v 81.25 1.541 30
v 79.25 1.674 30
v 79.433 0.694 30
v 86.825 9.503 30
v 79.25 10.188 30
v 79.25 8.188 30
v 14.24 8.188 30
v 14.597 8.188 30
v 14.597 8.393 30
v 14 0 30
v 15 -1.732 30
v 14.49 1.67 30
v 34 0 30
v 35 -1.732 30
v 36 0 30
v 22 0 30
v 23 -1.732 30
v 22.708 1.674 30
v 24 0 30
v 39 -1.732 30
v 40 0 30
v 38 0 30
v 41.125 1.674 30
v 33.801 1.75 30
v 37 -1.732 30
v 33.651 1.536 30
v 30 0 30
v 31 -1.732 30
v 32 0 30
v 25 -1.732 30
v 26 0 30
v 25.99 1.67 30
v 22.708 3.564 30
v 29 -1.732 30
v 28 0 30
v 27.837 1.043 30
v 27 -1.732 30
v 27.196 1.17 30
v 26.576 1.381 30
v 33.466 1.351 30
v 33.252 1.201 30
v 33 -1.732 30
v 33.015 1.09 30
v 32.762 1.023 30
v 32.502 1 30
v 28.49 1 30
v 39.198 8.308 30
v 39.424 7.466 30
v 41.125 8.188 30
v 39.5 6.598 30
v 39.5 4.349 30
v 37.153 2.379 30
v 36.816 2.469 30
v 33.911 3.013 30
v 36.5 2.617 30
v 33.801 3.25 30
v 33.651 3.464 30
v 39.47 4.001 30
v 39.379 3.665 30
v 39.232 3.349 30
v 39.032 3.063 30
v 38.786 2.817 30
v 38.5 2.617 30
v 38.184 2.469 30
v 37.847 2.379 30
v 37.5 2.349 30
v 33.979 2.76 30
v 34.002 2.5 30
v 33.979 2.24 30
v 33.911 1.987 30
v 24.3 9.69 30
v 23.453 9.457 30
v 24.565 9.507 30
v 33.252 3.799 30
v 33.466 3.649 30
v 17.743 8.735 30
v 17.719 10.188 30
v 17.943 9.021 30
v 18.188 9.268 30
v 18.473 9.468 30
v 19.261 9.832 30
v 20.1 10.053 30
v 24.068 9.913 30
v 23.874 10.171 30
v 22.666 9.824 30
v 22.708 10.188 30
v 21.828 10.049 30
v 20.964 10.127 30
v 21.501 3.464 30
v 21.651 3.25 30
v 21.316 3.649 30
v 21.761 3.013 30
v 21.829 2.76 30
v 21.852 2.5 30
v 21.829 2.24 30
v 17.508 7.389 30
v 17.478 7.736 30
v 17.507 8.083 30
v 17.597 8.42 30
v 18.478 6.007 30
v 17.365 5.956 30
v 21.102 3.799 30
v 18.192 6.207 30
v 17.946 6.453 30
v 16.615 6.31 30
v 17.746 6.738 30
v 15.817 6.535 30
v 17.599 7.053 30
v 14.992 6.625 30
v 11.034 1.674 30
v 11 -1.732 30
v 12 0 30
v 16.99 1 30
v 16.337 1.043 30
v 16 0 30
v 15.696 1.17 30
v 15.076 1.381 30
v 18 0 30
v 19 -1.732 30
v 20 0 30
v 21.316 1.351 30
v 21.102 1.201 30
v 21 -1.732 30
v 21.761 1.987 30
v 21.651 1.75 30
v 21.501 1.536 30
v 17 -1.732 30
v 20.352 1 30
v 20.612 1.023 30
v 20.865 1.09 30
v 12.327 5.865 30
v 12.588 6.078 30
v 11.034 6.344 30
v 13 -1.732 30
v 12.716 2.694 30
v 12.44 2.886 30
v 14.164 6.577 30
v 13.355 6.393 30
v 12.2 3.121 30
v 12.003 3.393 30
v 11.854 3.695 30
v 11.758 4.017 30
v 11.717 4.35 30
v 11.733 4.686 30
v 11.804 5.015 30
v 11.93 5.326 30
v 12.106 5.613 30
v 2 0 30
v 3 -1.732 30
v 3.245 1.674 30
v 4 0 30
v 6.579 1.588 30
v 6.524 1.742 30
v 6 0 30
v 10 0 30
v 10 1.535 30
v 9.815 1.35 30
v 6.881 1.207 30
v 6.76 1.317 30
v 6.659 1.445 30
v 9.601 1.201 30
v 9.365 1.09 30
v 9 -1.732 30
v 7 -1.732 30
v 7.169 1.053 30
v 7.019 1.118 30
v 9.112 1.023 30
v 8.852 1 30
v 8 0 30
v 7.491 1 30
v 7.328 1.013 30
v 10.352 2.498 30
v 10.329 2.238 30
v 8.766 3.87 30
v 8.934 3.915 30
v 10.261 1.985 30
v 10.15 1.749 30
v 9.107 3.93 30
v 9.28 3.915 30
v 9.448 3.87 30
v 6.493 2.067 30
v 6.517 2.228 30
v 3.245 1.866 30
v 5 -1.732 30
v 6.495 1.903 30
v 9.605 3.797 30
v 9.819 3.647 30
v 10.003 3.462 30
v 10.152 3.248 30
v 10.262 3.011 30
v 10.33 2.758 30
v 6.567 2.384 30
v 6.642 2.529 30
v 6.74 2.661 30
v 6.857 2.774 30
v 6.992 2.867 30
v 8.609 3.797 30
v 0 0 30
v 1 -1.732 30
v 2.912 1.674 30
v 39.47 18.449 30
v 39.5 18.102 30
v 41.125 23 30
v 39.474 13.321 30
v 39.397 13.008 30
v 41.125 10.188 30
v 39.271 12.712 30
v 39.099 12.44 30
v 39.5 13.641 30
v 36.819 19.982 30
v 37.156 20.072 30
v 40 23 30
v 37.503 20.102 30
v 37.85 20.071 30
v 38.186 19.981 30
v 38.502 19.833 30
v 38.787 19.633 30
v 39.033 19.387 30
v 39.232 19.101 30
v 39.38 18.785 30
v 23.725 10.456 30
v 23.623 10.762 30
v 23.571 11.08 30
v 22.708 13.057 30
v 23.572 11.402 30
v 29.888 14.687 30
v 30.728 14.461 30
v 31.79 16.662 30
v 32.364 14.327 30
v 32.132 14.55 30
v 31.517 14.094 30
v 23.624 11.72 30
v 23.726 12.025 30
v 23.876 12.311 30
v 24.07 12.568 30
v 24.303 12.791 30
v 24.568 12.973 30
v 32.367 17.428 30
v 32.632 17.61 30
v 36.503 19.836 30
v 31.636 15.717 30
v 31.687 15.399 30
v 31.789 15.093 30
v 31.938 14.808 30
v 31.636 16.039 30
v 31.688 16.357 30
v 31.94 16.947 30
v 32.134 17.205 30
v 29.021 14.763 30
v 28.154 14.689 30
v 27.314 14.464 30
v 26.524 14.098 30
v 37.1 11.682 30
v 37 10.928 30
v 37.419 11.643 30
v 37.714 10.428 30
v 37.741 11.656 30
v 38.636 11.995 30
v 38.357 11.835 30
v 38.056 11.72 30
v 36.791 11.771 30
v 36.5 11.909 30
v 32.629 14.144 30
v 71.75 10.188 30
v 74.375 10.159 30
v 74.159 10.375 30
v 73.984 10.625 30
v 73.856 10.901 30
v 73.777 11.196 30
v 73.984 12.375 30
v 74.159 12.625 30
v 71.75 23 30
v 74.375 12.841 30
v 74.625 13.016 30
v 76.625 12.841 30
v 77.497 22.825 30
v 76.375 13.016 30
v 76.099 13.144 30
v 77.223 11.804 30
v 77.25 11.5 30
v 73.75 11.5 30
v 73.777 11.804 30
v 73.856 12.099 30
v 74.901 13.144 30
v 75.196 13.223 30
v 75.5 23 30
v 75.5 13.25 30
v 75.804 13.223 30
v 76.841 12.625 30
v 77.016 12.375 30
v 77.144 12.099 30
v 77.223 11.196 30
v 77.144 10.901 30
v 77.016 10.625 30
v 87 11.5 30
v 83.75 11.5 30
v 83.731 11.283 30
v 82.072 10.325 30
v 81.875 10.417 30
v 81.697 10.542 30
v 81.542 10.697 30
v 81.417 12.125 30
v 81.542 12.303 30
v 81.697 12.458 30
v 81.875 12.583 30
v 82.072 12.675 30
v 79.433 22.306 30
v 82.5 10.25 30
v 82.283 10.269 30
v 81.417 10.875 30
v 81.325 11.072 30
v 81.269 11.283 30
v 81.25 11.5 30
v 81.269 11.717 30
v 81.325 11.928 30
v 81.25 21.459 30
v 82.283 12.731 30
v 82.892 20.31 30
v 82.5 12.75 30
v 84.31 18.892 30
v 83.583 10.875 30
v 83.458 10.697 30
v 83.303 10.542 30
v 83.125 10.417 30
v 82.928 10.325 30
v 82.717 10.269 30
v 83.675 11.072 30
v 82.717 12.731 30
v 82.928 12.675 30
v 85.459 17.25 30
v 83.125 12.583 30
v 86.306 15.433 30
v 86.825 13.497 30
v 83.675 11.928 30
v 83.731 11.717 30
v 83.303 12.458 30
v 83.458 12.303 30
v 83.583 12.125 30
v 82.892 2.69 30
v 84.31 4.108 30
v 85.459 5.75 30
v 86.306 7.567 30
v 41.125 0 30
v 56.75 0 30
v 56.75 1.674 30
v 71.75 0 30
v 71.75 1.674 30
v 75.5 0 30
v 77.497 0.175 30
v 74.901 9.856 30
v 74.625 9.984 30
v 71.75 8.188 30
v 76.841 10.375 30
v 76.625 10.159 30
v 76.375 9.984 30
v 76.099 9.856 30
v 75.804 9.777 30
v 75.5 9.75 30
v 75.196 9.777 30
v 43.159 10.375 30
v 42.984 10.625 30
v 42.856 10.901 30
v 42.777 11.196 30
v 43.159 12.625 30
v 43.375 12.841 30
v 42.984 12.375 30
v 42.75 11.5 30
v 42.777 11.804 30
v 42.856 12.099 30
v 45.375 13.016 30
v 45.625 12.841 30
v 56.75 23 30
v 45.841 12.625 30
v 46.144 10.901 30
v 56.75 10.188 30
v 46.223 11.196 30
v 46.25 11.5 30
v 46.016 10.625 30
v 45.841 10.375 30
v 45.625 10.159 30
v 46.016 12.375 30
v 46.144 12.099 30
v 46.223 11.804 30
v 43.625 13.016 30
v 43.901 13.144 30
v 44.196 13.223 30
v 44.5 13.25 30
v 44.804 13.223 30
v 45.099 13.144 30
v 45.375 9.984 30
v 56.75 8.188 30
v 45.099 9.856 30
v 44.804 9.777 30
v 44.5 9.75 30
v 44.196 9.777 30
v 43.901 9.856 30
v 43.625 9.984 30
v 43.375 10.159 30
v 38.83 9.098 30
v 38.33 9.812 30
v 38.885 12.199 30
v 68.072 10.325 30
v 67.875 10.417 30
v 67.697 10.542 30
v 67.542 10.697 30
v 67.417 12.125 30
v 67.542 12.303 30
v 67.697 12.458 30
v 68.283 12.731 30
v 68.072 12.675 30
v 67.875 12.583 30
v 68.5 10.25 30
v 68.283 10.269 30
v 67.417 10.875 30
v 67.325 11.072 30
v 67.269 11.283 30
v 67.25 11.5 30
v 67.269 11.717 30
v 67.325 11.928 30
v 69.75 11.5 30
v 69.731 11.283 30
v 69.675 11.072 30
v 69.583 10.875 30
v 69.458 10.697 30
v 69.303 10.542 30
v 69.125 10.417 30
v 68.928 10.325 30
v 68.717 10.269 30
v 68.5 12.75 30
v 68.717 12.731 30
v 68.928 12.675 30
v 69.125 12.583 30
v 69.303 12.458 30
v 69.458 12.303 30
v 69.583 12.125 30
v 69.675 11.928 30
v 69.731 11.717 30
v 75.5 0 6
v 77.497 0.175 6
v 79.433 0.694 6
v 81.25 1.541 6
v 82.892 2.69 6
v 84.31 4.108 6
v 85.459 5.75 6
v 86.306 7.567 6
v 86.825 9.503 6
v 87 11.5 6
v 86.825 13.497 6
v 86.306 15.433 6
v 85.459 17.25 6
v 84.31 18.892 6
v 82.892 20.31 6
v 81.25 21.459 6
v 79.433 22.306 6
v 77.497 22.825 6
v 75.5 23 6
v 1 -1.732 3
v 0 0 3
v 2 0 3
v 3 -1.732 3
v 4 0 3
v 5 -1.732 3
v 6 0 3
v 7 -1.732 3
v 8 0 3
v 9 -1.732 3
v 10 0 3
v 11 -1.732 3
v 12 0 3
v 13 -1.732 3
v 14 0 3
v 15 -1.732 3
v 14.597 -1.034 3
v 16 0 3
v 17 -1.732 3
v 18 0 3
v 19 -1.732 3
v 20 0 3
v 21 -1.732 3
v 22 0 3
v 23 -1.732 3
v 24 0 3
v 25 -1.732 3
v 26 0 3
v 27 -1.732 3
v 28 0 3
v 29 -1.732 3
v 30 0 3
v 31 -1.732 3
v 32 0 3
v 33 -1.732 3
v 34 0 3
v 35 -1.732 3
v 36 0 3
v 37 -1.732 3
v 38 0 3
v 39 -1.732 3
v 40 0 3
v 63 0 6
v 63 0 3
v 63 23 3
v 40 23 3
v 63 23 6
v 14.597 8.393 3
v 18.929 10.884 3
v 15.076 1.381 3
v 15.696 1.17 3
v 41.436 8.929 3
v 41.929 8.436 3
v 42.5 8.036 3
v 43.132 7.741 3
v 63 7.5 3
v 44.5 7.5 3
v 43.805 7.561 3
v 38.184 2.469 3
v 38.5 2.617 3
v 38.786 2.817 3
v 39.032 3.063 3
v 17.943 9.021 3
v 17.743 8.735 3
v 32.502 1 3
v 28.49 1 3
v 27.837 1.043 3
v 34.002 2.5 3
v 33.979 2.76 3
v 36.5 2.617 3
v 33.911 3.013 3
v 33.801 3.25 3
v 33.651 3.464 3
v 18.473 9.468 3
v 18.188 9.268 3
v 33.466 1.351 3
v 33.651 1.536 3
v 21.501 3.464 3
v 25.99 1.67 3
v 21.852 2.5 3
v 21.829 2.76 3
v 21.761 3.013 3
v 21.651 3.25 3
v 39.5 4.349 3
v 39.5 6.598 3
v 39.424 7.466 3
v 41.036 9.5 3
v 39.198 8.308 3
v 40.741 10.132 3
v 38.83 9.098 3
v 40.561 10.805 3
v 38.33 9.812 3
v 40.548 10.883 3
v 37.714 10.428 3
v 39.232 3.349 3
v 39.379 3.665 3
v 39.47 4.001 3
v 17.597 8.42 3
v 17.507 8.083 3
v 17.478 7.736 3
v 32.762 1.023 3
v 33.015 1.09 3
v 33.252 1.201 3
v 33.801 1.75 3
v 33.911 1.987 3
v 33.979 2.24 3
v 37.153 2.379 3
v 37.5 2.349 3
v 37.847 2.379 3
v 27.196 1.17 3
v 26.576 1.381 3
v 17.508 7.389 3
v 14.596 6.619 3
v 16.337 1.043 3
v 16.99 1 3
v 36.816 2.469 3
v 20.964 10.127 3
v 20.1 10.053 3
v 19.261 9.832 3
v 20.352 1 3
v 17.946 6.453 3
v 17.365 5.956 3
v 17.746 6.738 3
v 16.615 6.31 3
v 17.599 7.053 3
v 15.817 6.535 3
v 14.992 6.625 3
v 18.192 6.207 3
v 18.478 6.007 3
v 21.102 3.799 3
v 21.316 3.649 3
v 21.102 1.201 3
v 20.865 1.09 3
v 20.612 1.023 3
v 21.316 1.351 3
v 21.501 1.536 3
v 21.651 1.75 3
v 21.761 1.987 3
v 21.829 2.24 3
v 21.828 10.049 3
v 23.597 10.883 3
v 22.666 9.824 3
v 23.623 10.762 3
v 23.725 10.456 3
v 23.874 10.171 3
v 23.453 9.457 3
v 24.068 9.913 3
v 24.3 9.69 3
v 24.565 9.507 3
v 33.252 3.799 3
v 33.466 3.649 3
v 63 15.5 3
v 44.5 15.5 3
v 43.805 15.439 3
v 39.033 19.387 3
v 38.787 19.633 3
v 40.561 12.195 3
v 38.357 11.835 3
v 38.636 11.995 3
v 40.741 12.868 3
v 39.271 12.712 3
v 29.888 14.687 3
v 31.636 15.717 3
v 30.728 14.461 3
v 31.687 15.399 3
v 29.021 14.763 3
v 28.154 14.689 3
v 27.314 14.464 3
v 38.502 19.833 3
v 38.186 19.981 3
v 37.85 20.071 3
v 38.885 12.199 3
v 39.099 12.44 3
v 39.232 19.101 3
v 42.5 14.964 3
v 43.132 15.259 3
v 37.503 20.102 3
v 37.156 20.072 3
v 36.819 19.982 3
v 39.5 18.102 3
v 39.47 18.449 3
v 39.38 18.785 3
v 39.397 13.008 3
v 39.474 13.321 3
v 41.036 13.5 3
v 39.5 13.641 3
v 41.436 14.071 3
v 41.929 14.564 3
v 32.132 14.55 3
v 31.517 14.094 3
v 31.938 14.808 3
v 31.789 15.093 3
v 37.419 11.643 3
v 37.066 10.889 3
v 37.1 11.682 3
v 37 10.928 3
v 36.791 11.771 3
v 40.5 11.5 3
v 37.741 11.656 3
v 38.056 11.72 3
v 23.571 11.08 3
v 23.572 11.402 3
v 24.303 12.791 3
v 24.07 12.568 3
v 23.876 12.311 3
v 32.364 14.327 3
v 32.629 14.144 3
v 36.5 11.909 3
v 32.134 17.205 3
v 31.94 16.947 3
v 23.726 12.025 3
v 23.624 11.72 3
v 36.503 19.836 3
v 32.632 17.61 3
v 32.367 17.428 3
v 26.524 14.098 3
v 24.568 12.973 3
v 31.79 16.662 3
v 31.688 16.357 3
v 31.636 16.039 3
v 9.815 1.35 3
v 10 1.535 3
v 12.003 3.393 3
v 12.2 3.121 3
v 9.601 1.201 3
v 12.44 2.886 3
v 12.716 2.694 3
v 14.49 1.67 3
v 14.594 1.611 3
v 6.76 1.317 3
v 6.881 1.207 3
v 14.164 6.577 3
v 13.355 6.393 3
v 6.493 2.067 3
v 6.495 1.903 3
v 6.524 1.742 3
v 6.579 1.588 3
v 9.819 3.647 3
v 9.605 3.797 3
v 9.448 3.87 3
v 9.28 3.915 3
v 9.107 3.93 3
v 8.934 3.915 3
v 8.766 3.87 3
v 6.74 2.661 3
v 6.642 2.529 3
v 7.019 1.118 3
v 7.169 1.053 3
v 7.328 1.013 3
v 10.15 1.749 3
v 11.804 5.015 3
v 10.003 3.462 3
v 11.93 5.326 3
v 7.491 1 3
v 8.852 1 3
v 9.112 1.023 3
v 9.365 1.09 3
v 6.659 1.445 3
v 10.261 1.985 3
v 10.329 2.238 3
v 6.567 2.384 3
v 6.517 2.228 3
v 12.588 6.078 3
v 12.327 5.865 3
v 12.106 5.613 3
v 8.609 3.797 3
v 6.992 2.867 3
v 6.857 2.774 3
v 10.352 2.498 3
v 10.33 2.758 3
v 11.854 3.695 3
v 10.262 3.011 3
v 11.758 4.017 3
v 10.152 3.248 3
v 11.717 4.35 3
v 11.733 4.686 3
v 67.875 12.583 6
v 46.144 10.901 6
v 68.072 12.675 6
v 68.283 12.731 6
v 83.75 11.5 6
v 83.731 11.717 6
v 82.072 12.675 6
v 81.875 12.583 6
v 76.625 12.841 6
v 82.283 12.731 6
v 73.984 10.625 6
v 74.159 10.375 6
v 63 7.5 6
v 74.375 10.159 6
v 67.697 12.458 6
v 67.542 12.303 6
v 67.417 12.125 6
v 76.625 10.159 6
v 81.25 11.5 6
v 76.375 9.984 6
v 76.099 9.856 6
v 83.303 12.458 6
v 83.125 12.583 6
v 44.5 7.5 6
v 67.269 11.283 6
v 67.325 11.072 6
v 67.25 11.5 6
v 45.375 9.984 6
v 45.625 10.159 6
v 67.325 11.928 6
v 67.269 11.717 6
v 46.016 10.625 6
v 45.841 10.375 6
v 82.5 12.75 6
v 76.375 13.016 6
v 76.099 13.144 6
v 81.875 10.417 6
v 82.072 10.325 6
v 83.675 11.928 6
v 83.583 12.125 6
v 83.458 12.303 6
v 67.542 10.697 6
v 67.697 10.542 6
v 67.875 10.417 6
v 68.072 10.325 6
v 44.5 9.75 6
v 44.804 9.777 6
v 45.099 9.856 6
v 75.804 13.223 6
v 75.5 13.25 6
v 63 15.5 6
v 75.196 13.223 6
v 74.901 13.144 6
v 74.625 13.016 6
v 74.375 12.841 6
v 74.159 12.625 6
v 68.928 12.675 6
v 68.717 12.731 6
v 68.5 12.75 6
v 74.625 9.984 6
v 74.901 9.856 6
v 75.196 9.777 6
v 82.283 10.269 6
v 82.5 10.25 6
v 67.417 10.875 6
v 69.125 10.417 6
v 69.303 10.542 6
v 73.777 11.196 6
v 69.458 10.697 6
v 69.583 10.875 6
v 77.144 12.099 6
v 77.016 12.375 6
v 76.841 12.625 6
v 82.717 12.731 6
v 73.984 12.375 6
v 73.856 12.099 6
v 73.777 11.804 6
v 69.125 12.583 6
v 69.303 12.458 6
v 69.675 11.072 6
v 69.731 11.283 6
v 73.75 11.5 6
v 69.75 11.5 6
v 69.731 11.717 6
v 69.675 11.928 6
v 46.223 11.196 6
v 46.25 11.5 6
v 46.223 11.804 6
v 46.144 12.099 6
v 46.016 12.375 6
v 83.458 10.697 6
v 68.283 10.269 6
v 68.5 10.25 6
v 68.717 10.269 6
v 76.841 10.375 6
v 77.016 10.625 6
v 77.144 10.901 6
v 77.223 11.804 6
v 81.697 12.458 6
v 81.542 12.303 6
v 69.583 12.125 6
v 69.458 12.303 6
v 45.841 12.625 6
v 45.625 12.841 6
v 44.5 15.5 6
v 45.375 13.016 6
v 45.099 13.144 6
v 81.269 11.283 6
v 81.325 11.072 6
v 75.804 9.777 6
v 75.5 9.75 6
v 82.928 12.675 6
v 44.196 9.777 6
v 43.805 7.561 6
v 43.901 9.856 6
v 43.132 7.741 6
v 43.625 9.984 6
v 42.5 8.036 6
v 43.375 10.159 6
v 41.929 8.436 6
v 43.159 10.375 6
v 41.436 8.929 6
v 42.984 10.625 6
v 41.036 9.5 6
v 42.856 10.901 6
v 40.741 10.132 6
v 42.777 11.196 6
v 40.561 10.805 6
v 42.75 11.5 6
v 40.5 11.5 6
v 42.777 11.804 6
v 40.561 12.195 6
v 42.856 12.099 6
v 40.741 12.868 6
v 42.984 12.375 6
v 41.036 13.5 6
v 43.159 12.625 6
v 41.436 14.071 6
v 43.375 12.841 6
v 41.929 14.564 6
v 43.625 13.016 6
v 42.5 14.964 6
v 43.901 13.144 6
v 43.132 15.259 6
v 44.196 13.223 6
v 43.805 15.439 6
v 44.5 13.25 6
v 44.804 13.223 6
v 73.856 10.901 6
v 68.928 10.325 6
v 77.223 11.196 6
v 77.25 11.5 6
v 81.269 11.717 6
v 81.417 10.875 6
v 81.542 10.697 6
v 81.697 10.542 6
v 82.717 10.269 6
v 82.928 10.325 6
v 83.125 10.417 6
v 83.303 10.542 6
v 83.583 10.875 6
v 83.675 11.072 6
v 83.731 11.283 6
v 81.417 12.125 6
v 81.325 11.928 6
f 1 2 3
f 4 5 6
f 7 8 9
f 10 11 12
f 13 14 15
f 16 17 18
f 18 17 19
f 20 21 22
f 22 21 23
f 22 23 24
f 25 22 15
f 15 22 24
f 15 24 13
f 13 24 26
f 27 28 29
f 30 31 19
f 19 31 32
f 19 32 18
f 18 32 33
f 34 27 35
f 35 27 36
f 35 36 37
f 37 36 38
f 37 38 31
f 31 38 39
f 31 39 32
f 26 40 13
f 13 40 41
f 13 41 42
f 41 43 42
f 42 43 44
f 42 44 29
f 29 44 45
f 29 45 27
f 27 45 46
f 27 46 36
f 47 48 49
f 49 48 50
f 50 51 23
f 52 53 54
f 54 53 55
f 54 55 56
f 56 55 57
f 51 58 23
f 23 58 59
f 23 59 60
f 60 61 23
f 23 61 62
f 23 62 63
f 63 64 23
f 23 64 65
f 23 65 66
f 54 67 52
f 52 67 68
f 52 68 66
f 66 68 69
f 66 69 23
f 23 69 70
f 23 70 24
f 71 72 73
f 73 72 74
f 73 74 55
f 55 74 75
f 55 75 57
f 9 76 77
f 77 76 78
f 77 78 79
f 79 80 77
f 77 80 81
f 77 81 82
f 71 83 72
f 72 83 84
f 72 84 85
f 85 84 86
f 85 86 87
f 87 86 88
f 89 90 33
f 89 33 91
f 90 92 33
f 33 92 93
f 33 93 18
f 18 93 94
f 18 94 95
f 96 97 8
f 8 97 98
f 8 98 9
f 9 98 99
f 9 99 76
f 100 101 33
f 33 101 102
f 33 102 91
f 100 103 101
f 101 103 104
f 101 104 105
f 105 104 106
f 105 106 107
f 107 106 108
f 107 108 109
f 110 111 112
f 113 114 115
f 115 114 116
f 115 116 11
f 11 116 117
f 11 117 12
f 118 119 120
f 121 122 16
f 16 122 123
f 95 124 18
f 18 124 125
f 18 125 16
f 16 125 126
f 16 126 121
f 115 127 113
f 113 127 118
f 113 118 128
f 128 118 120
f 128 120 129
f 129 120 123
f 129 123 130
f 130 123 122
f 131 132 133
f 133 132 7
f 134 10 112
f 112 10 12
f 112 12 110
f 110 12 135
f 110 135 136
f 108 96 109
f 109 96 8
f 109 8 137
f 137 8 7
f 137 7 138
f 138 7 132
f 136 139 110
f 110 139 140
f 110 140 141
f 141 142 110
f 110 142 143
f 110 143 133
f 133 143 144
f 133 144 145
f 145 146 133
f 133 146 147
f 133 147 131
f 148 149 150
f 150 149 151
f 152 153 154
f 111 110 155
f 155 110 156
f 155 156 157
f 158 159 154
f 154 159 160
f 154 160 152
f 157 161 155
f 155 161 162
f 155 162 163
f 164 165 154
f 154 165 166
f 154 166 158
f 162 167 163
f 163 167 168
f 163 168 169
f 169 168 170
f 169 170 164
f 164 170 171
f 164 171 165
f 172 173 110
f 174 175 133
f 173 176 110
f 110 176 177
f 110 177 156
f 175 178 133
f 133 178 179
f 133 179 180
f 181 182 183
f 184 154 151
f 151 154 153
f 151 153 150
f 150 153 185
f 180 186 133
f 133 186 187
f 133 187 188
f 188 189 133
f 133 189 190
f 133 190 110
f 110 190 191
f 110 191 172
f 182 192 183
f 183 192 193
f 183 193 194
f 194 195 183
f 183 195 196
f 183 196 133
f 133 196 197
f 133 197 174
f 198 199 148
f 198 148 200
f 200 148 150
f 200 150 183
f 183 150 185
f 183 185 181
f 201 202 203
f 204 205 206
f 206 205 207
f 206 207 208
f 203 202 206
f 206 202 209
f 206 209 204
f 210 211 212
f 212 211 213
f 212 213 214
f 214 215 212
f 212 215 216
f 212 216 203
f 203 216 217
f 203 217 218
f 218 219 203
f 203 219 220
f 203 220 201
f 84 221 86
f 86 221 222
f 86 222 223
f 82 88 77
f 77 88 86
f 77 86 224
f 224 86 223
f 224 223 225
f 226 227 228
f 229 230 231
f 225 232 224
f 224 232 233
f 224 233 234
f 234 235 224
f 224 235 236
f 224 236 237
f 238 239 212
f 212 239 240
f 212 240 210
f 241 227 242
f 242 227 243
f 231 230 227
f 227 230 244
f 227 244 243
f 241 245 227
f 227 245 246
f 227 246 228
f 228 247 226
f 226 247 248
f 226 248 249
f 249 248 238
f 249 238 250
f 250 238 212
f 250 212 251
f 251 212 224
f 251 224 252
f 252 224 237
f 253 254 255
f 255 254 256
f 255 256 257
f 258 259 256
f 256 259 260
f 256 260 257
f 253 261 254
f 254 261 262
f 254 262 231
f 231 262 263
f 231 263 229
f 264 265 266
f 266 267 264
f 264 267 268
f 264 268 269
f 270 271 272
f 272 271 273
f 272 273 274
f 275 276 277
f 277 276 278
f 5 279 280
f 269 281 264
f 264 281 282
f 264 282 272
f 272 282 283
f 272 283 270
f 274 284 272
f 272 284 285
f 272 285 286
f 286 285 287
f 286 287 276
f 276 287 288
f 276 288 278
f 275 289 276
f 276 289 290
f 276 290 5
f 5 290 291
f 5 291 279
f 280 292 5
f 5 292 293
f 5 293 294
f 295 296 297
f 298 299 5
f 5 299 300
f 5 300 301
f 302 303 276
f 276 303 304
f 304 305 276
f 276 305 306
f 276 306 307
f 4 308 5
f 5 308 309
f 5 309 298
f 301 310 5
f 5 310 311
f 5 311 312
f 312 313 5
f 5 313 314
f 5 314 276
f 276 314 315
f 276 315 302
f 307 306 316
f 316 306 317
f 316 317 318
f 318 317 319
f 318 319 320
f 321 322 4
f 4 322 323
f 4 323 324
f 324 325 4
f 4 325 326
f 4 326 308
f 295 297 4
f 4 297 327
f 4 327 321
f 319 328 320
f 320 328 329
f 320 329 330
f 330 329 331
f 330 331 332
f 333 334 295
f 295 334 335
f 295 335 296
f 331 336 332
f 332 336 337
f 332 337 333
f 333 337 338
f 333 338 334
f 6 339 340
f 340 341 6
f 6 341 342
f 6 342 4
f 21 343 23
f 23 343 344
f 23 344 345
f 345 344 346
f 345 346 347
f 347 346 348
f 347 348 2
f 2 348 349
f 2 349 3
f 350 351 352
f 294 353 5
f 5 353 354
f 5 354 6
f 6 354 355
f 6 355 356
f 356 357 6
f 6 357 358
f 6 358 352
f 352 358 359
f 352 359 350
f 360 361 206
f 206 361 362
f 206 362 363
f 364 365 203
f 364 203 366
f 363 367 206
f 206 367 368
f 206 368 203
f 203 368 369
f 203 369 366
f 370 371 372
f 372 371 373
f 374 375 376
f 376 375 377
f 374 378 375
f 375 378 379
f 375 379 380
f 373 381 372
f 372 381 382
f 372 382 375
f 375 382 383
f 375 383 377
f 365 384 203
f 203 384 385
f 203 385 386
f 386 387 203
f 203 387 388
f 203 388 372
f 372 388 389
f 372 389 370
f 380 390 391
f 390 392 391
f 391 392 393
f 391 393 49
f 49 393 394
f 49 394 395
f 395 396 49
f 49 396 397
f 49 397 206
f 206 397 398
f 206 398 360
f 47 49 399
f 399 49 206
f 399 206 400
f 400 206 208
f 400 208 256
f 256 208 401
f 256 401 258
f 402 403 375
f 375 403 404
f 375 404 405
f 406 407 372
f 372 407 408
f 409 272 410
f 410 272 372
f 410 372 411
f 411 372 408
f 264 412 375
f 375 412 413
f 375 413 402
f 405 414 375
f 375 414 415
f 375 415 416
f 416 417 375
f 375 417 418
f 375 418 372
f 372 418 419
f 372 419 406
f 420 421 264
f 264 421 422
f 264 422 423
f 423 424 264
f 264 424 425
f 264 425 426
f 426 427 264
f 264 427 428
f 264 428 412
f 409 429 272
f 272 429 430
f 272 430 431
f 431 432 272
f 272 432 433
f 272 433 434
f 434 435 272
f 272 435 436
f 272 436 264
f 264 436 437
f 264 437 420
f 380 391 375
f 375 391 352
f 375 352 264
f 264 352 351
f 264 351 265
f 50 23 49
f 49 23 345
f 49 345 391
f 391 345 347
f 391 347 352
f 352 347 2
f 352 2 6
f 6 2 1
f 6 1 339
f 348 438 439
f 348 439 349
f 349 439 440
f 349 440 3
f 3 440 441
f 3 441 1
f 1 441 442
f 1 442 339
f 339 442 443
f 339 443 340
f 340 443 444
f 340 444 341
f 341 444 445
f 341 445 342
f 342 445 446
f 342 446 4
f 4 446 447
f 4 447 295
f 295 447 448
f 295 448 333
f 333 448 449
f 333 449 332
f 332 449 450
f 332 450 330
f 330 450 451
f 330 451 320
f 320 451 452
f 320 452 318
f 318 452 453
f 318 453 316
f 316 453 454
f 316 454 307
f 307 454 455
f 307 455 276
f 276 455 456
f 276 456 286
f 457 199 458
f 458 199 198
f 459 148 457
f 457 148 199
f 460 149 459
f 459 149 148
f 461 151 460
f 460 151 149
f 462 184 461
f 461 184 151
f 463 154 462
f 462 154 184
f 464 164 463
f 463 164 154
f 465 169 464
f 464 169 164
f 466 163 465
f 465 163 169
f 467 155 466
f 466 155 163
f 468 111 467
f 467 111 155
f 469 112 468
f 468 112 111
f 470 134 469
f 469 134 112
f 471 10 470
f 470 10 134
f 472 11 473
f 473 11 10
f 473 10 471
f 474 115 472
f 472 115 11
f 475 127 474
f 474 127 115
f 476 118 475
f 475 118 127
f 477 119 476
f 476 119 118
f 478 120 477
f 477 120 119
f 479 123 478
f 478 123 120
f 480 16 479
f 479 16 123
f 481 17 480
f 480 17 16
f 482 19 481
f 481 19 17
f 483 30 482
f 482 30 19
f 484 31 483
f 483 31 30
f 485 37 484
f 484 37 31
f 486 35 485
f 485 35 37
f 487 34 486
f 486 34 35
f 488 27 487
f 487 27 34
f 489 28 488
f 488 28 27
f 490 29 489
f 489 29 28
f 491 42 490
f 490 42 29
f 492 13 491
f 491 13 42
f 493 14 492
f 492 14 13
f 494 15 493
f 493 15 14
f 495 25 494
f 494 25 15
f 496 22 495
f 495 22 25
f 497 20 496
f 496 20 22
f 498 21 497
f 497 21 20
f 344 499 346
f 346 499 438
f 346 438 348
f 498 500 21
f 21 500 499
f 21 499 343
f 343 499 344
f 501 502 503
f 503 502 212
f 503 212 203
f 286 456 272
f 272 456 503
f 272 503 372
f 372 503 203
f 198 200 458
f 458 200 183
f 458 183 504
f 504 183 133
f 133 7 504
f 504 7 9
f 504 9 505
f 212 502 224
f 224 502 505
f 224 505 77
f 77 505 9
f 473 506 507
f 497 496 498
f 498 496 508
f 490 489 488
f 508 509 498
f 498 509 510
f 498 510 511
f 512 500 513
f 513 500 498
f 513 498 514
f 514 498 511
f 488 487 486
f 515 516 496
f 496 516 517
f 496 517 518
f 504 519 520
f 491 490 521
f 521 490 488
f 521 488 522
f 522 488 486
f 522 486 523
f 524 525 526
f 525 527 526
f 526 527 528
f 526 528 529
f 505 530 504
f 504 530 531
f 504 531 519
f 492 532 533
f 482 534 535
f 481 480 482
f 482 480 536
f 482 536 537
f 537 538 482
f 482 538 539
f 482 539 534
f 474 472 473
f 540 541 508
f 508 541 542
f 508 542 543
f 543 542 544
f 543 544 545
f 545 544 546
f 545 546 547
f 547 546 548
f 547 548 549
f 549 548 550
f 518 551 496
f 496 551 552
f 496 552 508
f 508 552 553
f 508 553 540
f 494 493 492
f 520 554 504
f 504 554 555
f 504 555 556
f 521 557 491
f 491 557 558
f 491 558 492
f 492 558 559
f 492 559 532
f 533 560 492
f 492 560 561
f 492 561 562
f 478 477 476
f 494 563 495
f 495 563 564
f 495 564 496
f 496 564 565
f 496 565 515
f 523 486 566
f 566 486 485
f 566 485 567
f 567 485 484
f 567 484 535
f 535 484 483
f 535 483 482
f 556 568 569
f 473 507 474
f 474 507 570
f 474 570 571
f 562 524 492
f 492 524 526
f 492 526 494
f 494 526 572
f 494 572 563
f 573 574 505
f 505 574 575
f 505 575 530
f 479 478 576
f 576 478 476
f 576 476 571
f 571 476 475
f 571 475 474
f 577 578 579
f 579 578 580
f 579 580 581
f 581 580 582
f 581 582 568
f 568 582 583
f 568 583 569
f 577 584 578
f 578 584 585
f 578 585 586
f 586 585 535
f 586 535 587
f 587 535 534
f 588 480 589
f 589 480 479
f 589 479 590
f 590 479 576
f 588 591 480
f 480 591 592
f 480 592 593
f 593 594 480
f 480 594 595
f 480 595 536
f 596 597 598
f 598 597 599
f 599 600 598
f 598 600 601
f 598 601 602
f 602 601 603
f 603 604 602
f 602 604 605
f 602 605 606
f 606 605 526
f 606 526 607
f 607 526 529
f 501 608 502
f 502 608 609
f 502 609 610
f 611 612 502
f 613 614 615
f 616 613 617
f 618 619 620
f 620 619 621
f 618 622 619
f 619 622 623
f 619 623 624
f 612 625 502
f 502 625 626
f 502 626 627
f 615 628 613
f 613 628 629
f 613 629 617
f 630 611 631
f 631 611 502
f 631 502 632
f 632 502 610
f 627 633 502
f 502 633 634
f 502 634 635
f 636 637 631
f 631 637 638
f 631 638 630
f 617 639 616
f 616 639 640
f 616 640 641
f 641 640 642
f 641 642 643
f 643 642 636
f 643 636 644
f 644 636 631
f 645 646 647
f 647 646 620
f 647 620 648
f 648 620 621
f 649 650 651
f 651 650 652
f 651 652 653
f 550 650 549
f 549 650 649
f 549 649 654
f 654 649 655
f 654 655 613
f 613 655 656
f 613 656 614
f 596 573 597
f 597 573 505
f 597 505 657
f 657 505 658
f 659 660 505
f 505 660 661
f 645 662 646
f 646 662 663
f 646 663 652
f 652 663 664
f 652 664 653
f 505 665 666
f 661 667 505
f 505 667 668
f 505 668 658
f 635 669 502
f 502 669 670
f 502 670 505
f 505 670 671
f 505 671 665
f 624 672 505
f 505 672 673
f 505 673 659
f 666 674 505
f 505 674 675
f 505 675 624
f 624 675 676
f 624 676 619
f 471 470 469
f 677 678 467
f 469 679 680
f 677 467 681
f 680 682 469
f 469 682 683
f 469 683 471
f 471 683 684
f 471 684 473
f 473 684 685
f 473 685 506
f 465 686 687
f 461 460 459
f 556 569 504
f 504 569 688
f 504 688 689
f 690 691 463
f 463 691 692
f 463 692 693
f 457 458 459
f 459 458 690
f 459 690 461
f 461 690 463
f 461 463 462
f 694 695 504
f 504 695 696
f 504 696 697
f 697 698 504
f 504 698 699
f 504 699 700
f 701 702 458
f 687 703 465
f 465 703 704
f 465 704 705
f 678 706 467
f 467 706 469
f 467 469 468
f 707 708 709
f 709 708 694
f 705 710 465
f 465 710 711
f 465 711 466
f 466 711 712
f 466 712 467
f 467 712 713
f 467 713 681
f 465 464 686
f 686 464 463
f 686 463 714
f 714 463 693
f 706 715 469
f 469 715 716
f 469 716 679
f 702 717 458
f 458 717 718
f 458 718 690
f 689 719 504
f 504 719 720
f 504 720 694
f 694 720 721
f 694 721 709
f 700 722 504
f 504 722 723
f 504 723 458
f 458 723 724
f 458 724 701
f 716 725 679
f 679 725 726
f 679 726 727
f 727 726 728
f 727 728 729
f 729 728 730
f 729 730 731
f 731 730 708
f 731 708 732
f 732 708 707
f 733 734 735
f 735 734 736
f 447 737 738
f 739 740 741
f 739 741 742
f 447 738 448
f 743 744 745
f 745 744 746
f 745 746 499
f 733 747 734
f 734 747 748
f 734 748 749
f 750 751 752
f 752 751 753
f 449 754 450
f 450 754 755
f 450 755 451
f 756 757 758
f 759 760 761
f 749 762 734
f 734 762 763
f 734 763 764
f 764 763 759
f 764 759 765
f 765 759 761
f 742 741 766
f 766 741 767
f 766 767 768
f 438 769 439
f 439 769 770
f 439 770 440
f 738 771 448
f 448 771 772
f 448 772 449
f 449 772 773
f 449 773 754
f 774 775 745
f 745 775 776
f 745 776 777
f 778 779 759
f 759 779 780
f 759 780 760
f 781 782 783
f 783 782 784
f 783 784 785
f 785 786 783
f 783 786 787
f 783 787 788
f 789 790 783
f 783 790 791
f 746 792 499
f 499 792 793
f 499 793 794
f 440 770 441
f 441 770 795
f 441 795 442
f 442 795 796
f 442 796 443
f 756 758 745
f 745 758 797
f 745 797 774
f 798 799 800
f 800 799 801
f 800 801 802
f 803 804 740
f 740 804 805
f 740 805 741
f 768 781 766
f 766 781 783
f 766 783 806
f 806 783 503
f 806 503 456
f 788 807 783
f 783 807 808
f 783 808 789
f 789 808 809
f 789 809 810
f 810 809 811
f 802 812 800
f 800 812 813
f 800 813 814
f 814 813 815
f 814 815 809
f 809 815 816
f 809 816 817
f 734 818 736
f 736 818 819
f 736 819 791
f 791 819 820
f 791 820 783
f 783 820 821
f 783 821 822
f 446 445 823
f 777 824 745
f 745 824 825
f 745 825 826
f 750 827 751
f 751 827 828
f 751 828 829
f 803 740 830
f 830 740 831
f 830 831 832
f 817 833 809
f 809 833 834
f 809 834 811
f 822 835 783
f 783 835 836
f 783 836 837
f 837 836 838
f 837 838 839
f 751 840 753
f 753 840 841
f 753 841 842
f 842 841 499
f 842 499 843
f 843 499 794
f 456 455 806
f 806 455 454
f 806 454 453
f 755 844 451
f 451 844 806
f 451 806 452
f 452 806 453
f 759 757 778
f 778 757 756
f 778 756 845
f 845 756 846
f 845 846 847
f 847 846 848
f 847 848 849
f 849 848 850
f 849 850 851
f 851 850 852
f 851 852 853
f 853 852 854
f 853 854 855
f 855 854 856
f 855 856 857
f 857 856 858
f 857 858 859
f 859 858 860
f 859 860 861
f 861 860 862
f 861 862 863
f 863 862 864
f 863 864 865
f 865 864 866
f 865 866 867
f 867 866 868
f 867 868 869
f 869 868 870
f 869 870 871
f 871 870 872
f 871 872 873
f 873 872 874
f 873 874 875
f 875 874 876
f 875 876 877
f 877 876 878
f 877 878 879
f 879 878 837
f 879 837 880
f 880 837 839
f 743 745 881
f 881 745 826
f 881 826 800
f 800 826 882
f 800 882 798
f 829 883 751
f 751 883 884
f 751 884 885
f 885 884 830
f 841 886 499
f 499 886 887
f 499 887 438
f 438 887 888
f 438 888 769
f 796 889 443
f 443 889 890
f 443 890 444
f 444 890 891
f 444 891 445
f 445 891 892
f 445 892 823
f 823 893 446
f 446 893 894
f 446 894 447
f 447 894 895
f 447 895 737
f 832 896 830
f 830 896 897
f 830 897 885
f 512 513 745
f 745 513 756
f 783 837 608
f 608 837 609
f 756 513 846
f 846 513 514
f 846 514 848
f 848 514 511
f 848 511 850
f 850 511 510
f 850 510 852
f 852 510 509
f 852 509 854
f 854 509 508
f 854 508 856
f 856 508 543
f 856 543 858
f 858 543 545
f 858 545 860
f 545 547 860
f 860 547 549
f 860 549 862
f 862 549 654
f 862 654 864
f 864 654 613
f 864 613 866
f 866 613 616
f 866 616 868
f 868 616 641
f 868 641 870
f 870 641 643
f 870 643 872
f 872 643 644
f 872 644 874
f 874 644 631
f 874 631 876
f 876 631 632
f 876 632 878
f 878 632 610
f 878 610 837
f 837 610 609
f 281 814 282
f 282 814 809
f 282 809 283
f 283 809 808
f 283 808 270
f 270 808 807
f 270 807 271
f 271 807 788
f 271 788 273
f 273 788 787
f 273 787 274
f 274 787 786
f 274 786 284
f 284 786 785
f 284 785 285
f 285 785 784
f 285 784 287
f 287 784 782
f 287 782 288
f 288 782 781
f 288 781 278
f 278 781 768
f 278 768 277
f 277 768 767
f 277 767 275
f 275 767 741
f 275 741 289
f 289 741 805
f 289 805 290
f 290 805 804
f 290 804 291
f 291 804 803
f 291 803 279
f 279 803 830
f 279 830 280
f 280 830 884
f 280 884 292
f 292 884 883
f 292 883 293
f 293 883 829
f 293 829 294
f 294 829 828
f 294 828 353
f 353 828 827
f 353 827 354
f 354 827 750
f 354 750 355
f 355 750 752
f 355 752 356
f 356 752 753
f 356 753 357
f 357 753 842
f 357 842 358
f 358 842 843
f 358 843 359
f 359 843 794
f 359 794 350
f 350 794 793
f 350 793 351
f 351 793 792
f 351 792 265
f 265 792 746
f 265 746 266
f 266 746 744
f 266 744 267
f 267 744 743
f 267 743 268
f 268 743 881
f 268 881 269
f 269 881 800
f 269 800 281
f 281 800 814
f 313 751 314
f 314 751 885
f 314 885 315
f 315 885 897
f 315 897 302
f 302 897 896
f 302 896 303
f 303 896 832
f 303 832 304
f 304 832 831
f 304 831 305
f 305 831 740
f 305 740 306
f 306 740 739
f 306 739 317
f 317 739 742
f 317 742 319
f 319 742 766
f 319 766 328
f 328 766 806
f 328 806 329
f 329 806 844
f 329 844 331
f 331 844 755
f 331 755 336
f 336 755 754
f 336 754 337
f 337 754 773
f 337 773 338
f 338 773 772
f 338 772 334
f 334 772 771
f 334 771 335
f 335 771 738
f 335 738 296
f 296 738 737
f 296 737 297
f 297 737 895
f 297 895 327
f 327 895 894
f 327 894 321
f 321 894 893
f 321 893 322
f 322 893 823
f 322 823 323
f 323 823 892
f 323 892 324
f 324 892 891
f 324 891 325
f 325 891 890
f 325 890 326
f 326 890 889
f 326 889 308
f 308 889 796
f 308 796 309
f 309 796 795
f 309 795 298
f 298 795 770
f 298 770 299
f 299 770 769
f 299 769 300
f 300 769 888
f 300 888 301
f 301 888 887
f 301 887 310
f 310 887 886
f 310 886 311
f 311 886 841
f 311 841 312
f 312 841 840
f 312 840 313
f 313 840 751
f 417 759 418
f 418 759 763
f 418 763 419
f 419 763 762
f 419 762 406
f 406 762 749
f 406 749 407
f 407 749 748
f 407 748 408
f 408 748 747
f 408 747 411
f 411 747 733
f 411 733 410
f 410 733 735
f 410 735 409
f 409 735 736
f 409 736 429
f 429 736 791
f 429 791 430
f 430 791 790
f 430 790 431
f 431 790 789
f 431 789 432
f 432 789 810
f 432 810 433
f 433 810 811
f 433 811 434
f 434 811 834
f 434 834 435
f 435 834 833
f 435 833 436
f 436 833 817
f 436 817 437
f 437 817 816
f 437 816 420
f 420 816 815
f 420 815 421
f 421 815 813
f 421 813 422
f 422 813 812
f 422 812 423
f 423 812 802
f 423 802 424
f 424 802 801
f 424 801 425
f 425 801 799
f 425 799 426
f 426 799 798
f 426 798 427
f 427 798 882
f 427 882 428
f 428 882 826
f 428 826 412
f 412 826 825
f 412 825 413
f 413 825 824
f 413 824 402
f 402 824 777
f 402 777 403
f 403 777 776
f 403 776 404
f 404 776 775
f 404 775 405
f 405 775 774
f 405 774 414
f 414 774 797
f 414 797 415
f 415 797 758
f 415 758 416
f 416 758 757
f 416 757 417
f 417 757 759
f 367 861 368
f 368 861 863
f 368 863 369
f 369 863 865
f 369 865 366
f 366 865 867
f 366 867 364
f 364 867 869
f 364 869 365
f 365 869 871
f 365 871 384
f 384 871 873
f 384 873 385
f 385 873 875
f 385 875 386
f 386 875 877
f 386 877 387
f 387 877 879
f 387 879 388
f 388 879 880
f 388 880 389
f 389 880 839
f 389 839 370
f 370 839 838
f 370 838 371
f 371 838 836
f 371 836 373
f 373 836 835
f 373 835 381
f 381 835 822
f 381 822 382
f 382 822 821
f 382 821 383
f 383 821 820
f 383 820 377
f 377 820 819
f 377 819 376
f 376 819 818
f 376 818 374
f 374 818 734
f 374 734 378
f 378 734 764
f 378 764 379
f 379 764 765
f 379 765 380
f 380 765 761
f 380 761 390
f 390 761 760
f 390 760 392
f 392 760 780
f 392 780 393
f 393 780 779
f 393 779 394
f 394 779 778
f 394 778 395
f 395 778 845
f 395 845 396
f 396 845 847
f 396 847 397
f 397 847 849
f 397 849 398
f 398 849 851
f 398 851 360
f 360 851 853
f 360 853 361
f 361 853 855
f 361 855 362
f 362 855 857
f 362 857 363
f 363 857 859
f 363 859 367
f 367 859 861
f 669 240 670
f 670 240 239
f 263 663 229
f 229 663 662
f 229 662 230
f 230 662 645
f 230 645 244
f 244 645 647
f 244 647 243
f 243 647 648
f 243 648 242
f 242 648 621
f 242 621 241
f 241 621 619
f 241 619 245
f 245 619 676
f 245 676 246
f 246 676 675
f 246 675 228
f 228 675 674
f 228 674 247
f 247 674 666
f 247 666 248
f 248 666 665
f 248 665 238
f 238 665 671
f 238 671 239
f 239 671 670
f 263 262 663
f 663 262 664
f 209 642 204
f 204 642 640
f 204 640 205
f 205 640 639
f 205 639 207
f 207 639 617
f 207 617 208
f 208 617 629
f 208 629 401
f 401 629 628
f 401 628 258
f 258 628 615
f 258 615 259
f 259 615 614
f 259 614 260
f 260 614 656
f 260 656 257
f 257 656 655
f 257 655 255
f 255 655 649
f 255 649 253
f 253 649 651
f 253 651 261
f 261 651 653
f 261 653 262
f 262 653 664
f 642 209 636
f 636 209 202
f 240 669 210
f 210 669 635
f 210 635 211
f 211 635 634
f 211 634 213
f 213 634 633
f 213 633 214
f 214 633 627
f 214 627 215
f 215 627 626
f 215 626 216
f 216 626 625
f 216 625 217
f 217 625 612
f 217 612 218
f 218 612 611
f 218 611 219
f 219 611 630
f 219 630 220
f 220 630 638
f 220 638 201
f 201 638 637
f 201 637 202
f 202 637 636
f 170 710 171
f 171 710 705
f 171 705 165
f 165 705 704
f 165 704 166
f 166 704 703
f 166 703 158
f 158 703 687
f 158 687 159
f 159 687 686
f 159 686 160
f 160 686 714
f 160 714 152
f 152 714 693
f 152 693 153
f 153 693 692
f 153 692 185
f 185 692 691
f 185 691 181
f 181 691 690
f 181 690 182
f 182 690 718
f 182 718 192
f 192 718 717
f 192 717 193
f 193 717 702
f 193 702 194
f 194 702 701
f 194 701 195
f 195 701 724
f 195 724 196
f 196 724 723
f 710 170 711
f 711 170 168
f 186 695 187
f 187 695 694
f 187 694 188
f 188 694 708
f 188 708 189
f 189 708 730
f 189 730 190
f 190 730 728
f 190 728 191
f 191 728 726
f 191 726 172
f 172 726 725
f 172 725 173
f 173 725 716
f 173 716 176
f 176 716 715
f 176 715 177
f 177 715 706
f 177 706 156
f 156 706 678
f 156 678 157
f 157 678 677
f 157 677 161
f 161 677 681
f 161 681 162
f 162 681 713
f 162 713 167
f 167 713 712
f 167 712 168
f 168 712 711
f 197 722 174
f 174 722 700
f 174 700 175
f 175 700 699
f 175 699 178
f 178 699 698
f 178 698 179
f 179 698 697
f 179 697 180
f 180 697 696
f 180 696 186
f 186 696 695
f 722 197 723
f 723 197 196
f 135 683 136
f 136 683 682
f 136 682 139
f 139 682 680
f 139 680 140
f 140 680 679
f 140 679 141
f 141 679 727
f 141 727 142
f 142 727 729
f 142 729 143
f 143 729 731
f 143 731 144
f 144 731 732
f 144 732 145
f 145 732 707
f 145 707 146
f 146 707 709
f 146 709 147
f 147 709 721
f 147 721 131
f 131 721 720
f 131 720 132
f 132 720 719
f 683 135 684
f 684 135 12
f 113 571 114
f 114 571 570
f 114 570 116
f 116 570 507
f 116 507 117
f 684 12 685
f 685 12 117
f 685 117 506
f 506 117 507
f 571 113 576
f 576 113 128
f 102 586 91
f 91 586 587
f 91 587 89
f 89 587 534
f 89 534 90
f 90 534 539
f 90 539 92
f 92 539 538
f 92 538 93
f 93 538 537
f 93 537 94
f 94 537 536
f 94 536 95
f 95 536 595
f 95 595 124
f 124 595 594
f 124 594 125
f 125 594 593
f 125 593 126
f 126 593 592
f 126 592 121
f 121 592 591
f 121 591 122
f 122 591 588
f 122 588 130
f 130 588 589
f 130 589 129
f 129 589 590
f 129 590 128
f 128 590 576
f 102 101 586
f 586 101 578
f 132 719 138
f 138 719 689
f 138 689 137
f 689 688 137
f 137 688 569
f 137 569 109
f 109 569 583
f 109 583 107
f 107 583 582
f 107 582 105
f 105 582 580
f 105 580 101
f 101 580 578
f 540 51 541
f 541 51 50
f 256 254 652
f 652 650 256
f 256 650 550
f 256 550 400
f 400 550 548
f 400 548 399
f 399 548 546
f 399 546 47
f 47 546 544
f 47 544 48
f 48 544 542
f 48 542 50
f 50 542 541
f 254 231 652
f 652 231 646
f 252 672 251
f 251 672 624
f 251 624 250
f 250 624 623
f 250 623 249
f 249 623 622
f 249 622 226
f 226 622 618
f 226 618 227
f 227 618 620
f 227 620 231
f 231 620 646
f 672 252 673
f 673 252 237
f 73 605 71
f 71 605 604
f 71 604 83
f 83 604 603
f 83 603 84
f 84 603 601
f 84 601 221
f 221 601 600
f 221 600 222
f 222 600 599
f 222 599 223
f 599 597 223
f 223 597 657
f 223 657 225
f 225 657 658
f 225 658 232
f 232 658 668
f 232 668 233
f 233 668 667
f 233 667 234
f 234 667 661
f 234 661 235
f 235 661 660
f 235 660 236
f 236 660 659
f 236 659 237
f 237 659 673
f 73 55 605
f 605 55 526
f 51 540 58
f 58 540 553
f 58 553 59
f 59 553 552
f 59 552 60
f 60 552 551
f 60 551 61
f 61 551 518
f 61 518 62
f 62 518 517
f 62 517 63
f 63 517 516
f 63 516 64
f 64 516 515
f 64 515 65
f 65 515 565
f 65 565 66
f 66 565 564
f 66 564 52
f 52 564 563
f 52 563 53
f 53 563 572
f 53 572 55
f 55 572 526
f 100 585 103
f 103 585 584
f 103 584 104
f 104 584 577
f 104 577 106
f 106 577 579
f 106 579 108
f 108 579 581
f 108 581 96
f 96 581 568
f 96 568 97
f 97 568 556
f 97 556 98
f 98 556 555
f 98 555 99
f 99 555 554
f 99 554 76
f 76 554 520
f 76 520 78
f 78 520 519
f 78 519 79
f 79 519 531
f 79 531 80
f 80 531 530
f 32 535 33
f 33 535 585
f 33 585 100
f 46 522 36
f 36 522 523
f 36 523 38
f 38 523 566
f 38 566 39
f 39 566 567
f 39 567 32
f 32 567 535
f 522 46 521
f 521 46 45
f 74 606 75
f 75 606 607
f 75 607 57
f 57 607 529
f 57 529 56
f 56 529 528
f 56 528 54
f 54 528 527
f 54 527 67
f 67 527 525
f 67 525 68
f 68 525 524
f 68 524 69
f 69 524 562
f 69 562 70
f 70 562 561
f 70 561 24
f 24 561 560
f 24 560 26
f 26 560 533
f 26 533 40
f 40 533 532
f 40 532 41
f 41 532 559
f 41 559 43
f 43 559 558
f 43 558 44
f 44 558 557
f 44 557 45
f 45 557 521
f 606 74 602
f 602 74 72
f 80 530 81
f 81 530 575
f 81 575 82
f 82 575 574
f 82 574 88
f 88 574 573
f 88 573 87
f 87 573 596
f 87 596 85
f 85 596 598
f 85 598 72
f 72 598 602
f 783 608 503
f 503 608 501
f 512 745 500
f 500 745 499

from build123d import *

# Parameters (mm, degrees)
BOSS_EXTRUDE1_DEPTH = 30
SKETCH4_W           = 47
SKETCH4_H           = 3
CUT_EXTRUDE1_DEPTH  = 30
CUT_EXTRUDE2_DEPTH  = 3
SKETCH6_R           = 11.5
CUT_EXTRUDE3_DEPTH  = 3
CUT_EXTRUDE4_DEPTH  = 3
SKETCH8_R           = 1.75
CUT_EXTRUDE5_DEPTH  = 63
SKETCH9_R           = 1.25
CUT_EXTRUDE6_DEPTH  = 63
SKETCH11_R          = 1.75
CUT_EXTRUDE7_DEPTH  = 63
CUT_EXTRUDE8_START  = -30
CUT_EXTRUDE8_DEPTH  = 30
CUT_EXTRUDE12_DEPTH = 3
SKETCH26_W          = 13.519432365
SKETCH26_H          = 72.724713812
CUT_EXTRUDE18_DEPTH = 3
SKETCH21_W          = 40
SKETCH21_H          = 3
CUT_EXTRUDE16_DEPTH = 27
SKETCH19_W          = 40
SKETCH19_H          = 3
CUT_EXTRUDE15_DEPTH = 77
SKETCH27_W          = 110.290259741
SKETCH27_H          = 28.330573593
CUT_EXTRUDE19_DEPTH = 98.765024421


# Read off the part's stored shape, not the designer's step: Cut-Extrude8
with BuildPart() as part:
    # Sketch2 → Boss-Extrude1 (new body)
    with BuildSketch(Plane.XY):
        Polygon((2, 0), (0, 0), (1, -1.732050808), align=None)
        Polygon((4, 0), (2, 0), (3, -1.732050808), align=None)
        Polygon((6, 0), (4, 0), (5, -1.732050808), align=None)
        Polygon((8, 0), (6, 0), (7, -1.732050808), align=None)
        Polygon((10, 0), (8, 0), (9, -1.732050808), align=None)
        Polygon((12, 0), (10, 0), (11, -1.732050808), align=None)
        Polygon((14, 0), (12, 0), (13, -1.732050808), align=None)
        Polygon((16, 0), (14, 0), (15, -1.732050808), align=None)
        Polygon((18, 0), (16, 0), (17, -1.732050808), align=None)
        Polygon((20, 0), (18, 0), (19, -1.732050808), align=None)
        Polygon((22, 0), (20, 0), (21, -1.732050808), align=None)
        Polygon((24, 0), (22, 0), (23, -1.732050808), align=None)
        Polygon((25, -1.732050808), (26, 0), (24, 0), align=None)
        Polygon((27, -1.732050808), (28, 0), (26, 0), align=None)
        Polygon((29, -1.732050808), (30, 0), (28, 0), align=None)
        Polygon((31, -1.732050808), (32, 0), (30, 0), align=None)
        Polygon((33, -1.732050808), (34, 0), (32, 0), align=None)
        Polygon((35, -1.732050808), (36, 0), (34, 0), align=None)
        Polygon((37, -1.732050808), (38, 0), (36, 0), align=None)
        Polygon((39, -1.732050808), (40, 0), (38, 0), align=None)
        Polygon((75.5, 23), (75.5, 0), (0, 0), (40, 23), align=None)
        with BuildLine():
            ThreePointArc((75.5, 0), (87, 11.5), (75.5, 23))
            Line((75.5, 23), (75.5, 0))
        make_face()
    extrude(amount=BOSS_EXTRUDE1_DEPTH)

    # Sketch4 → Cut-Extrude1 (cut)
    with BuildSketch(Plane.XZ):
        with Locations((63.5, 1.5)):
            Rectangle(SKETCH4_W, SKETCH4_H)
    extrude(amount=-CUT_EXTRUDE1_DEPTH, mode=Mode.SUBTRACT)

    # Sketch5 → Cut-Extrude2 (cut)
    with BuildSketch(Plane(origin=(0, 0, 3), x_dir=(-1, 0, 0), z_dir=(0, 0, -1))):
        with BuildLine():
            Line((-44.5, 15.5), (-100.316269326, 15.5))
            Line((-100.316269326, 15.5), (-100.316269326, 7.5))
            Line((-100.316269326, 7.5), (-44.5, 7.5))
            ThreePointArc((-44.5, 7.5), (-40.5, 11.5), (-44.5, 15.5))
        make_face()
    extrude(amount=-CUT_EXTRUDE2_DEPTH, mode=Mode.SUBTRACT)

    # Sketch6 → Cut-Extrude3 (cut)
    with BuildSketch(Plane(origin=(0, 0, 3), x_dir=(-1, 0, 0), z_dir=(0, 0, -1))):
        with Locations((-75.5, 11.5)):
            Circle(SKETCH6_R)
    extrude(amount=-CUT_EXTRUDE3_DEPTH, mode=Mode.SUBTRACT)

    # Sketch7 → Cut-Extrude4 (cut)
    with BuildSketch(Plane(origin=(0, 0, 3), x_dir=(-1, 0, 0), z_dir=(0, 0, -1))):
        with BuildLine():
            Line((-64.718070674, 7.5), (-64.718070674, 0))
            Line((-64.718070674, 0), (-75.5, 0))
            ThreePointArc((-75.5, 0), (-68.933037232, 2.059396206), (-64.718070674, 7.5))
        make_face()
    extrude(amount=-CUT_EXTRUDE4_DEPTH, mode=Mode.SUBTRACT)

    # Sketch8 → Cut-Extrude5 (cut)
    with BuildSketch(Plane(origin=(0, 0, 6), x_dir=(-1, 0, 0), z_dir=(0, 0, -1))):
        with Locations((-75.5, 11.5)):
            Circle(SKETCH8_R)
    extrude(amount=-CUT_EXTRUDE5_DEPTH, mode=Mode.SUBTRACT)

    # Sketch9 → Cut-Extrude6 (cut)
    with BuildSketch(Plane(origin=(0, 0, 6), x_dir=(-1, 0, 0), z_dir=(0, 0, -1))):
        with Locations((-68.5, 11.5)):
            Circle(SKETCH9_R)
        with Locations((-82.5, 11.5)):
            Circle(SKETCH9_R)
    extrude(amount=-CUT_EXTRUDE6_DEPTH, mode=Mode.SUBTRACT)

    # Sketch11 → Cut-Extrude7 (cut)
    with BuildSketch(Plane(origin=(0, 0, 6), x_dir=(-1, 0, 0), z_dir=(0, 0, -1))):
        with Locations((-44.5, 11.5)):
            Circle(SKETCH11_R)
    extrude(amount=-CUT_EXTRUDE7_DEPTH, mode=Mode.SUBTRACT)

    # Cut-Extrude8 outline → Cut-Extrude8 (cut)
    with BuildSketch(Plane(origin=(0, 0, 0), x_dir=(-1, 0, 0), z_dir=(0, 0, -1)).offset(CUT_EXTRUDE8_START)):
        with BuildLine():
            ThreePointArc((-32.629244175, 14.144182994), (-31.629244953, 15.877998297), (-32.632301926, 17.610046408))
            Line((-32.632301926, 17.610046408), (-36.503057751, 19.835731008))
            ThreePointArc((-36.503057751, 19.835731008), (-38.501527709, 19.833086287), (-39.5, 18.101918401))
            Line((-39.5, 18.101918401), (-39.5, 13.641451884))
            ThreePointArc((-39.5, 13.641451884), (-38.5, 11.909401077), (-36.5, 11.909401077))
            Line((-36.5, 11.909401077), (-32.629244175, 14.144182994))
        make_face()
        with BuildLine():
            ThreePointArc((-7.49052939, 1), (-6.524375597, 1.742033241), (-6.992058265, 2.866906303))
            Line((-6.992058265, 2.866906303), (-8.609059399, 3.796681955))
            ThreePointArc((-8.609059399, 3.796681955), (-9.106957749, 3.929775488), (-9.605008237, 3.797252409))
            ThreePointArc((-9.605008237, 3.797252409), (-10.300350282, 2.110050397), (-8.851923789, 1))
            Line((-8.851923789, 1), (-7.49052939, 1))
        make_face()
        with BuildLine():
            ThreePointArc((-24.565011822, 9.507249391), (-23.5650126, 11.241064694), (-24.568069573, 12.973112805))
            Line((-24.568069573, 12.973112805), (-26.524452009, 14.098032706))
            ThreePointArc((-26.524452009, 14.098032706), (-29.021218869, 14.763499245), (-31.516807631, 14.09362821))
            Line((-31.516807631, 14.09362821), (-37, 10.927905619))
            ThreePointArc((-37, 10.927905619), (-38.830127019, 9.0977786), (-39.5, 6.5977786))
            Line((-39.5, 6.5977786), (-39.5, 4.348631561))
            ThreePointArc((-39.5, 4.348631561), (-38.5, 2.616580754), (-36.5, 2.616580754))
            Line((-36.5, 2.616580754), (-24.565011822, 9.507249391))
        make_face()
        with BuildLine():
            ThreePointArc((-21.101923789, 3.799038106), (-21.800812528, 2.111771433), (-20.351923789, 1))
            Line((-20.351923789, 1), (-16.989745962, 1))
            ThreePointArc((-16.989745962, 1), (-15.695650737, 1.170370869), (-14.489745962, 1.669872981))
            Line((-14.489745962, 1.669872981), (-12.715894213, 2.694006766))
            ThreePointArc((-12.715894213, 2.694006766), (-11.717324154, 4.350441969), (-12.587876643, 6.077595149))
            ThreePointArc((-12.587876643, 6.077595149), (-14.991941557, 6.624711226), (-17.365185047, 5.956445224))
            Line((-17.365185047, 5.956445224), (-21.101923789, 3.799038106))
        make_face()
        with BuildLine():
            ThreePointArc((-33.251923789, 3.799038106), (-33.950812528, 2.111771433), (-32.501923789, 1))
            Line((-32.501923789, 1), (-28.489745962, 1))
            ThreePointArc((-28.489745962, 1), (-27.195650737, 1.170370869), (-25.989745962, 1.669872981))
            Line((-25.989745962, 1.669872981), (-18.477621591, 6.007000009))
            ThreePointArc((-18.477621591, 6.007000009), (-17.477623561, 7.73624352), (-18.472763157, 9.468287505))
            ThreePointArc((-18.472763157, 9.468287505), (-20.964215142, 10.126554039), (-23.452575278, 9.456694606))
            Line((-23.452575278, 9.456694606), (-33.251923789, 3.799038106))
        make_face()
    extrude(amount=CUT_EXTRUDE8_DEPTH, mode=Mode.SUBTRACT)

    # Sketch15 → Cut-Extrude12 (cut)
    with BuildSketch(Plane(origin=(0, 0, 3), x_dir=(-1, 0, 0), z_dir=(0, 0, -1))):
        with BuildLine():
            Line((-75.5, 23), (-70.601020514, 23))
            ThreePointArc((-70.601020514, 23), (-66.32756197, 19.992136397), (-63.657280718, 15.5))
            Line((-63.657280718, 15.5), (-64.718070674, 15.5))
            ThreePointArc((-64.718070674, 15.5), (-68.933037232, 20.940603794), (-75.5, 23))
        make_face()
    extrude(amount=-CUT_EXTRUDE12_DEPTH, mode=Mode.SUBTRACT)


with BuildPart() as body_2:
    # Mirror6: mirrored copy
    add(part.part.mirror(Plane(origin=(0, -5, 0), x_dir=(0, 0, 1), z_dir=(0, -1, 0))))


with BuildPart() as cut_extrude18_tool:
    # Sketch26 → Cut-Extrude18 (new body)
    with BuildSketch(Plane(origin=(0, 0, 3), x_dir=(-1, 0, 0), z_dir=(0, 0, -1))):
        with Locations((-69.759716183, -4.516968795)):
            Rectangle(SKETCH26_W, SKETCH26_H)
    extrude(amount=-CUT_EXTRUDE18_DEPTH)


with BuildPart() as part_1:
    add(part.part)

    # Cut-Extrude18: cut by cut_extrude18_tool
    add(cut_extrude18_tool.part, mode=Mode.SUBTRACT)

    # Sketch21 → Cut-Extrude16 (cut)
    with BuildSketch(Plane(origin=(0, 23, 0), x_dir=(1, 0, 0), z_dir=(0, 1, 0))):
        with Locations((20, -1.5)):
            Rectangle(SKETCH21_W, SKETCH21_H)
    extrude(amount=-CUT_EXTRUDE16_DEPTH, mode=Mode.SUBTRACT)


with BuildPart() as body_2_1:
    add(body_2.part)

    # Cut-Extrude18: cut by cut_extrude18_tool
    add(cut_extrude18_tool.part, mode=Mode.SUBTRACT)

    # Sketch19 → Cut-Extrude15 (cut)
    with BuildSketch(Plane.XZ.offset(33)):
        with Locations((20, 1.5)):
            Rectangle(SKETCH19_W, SKETCH19_H)
    extrude(amount=-CUT_EXTRUDE15_DEPTH, mode=Mode.SUBTRACT)

    # Sketch27 → Cut-Extrude19 (cut, through all)
    with BuildSketch(Plane.XY):
        with Locations((42.931493507, -21.344561689)):
            Rectangle(SKETCH27_W, SKETCH27_H)
    extrude(amount=CUT_EXTRUDE19_DEPTH, mode=Mode.SUBTRACT)


solid = part_1.part
